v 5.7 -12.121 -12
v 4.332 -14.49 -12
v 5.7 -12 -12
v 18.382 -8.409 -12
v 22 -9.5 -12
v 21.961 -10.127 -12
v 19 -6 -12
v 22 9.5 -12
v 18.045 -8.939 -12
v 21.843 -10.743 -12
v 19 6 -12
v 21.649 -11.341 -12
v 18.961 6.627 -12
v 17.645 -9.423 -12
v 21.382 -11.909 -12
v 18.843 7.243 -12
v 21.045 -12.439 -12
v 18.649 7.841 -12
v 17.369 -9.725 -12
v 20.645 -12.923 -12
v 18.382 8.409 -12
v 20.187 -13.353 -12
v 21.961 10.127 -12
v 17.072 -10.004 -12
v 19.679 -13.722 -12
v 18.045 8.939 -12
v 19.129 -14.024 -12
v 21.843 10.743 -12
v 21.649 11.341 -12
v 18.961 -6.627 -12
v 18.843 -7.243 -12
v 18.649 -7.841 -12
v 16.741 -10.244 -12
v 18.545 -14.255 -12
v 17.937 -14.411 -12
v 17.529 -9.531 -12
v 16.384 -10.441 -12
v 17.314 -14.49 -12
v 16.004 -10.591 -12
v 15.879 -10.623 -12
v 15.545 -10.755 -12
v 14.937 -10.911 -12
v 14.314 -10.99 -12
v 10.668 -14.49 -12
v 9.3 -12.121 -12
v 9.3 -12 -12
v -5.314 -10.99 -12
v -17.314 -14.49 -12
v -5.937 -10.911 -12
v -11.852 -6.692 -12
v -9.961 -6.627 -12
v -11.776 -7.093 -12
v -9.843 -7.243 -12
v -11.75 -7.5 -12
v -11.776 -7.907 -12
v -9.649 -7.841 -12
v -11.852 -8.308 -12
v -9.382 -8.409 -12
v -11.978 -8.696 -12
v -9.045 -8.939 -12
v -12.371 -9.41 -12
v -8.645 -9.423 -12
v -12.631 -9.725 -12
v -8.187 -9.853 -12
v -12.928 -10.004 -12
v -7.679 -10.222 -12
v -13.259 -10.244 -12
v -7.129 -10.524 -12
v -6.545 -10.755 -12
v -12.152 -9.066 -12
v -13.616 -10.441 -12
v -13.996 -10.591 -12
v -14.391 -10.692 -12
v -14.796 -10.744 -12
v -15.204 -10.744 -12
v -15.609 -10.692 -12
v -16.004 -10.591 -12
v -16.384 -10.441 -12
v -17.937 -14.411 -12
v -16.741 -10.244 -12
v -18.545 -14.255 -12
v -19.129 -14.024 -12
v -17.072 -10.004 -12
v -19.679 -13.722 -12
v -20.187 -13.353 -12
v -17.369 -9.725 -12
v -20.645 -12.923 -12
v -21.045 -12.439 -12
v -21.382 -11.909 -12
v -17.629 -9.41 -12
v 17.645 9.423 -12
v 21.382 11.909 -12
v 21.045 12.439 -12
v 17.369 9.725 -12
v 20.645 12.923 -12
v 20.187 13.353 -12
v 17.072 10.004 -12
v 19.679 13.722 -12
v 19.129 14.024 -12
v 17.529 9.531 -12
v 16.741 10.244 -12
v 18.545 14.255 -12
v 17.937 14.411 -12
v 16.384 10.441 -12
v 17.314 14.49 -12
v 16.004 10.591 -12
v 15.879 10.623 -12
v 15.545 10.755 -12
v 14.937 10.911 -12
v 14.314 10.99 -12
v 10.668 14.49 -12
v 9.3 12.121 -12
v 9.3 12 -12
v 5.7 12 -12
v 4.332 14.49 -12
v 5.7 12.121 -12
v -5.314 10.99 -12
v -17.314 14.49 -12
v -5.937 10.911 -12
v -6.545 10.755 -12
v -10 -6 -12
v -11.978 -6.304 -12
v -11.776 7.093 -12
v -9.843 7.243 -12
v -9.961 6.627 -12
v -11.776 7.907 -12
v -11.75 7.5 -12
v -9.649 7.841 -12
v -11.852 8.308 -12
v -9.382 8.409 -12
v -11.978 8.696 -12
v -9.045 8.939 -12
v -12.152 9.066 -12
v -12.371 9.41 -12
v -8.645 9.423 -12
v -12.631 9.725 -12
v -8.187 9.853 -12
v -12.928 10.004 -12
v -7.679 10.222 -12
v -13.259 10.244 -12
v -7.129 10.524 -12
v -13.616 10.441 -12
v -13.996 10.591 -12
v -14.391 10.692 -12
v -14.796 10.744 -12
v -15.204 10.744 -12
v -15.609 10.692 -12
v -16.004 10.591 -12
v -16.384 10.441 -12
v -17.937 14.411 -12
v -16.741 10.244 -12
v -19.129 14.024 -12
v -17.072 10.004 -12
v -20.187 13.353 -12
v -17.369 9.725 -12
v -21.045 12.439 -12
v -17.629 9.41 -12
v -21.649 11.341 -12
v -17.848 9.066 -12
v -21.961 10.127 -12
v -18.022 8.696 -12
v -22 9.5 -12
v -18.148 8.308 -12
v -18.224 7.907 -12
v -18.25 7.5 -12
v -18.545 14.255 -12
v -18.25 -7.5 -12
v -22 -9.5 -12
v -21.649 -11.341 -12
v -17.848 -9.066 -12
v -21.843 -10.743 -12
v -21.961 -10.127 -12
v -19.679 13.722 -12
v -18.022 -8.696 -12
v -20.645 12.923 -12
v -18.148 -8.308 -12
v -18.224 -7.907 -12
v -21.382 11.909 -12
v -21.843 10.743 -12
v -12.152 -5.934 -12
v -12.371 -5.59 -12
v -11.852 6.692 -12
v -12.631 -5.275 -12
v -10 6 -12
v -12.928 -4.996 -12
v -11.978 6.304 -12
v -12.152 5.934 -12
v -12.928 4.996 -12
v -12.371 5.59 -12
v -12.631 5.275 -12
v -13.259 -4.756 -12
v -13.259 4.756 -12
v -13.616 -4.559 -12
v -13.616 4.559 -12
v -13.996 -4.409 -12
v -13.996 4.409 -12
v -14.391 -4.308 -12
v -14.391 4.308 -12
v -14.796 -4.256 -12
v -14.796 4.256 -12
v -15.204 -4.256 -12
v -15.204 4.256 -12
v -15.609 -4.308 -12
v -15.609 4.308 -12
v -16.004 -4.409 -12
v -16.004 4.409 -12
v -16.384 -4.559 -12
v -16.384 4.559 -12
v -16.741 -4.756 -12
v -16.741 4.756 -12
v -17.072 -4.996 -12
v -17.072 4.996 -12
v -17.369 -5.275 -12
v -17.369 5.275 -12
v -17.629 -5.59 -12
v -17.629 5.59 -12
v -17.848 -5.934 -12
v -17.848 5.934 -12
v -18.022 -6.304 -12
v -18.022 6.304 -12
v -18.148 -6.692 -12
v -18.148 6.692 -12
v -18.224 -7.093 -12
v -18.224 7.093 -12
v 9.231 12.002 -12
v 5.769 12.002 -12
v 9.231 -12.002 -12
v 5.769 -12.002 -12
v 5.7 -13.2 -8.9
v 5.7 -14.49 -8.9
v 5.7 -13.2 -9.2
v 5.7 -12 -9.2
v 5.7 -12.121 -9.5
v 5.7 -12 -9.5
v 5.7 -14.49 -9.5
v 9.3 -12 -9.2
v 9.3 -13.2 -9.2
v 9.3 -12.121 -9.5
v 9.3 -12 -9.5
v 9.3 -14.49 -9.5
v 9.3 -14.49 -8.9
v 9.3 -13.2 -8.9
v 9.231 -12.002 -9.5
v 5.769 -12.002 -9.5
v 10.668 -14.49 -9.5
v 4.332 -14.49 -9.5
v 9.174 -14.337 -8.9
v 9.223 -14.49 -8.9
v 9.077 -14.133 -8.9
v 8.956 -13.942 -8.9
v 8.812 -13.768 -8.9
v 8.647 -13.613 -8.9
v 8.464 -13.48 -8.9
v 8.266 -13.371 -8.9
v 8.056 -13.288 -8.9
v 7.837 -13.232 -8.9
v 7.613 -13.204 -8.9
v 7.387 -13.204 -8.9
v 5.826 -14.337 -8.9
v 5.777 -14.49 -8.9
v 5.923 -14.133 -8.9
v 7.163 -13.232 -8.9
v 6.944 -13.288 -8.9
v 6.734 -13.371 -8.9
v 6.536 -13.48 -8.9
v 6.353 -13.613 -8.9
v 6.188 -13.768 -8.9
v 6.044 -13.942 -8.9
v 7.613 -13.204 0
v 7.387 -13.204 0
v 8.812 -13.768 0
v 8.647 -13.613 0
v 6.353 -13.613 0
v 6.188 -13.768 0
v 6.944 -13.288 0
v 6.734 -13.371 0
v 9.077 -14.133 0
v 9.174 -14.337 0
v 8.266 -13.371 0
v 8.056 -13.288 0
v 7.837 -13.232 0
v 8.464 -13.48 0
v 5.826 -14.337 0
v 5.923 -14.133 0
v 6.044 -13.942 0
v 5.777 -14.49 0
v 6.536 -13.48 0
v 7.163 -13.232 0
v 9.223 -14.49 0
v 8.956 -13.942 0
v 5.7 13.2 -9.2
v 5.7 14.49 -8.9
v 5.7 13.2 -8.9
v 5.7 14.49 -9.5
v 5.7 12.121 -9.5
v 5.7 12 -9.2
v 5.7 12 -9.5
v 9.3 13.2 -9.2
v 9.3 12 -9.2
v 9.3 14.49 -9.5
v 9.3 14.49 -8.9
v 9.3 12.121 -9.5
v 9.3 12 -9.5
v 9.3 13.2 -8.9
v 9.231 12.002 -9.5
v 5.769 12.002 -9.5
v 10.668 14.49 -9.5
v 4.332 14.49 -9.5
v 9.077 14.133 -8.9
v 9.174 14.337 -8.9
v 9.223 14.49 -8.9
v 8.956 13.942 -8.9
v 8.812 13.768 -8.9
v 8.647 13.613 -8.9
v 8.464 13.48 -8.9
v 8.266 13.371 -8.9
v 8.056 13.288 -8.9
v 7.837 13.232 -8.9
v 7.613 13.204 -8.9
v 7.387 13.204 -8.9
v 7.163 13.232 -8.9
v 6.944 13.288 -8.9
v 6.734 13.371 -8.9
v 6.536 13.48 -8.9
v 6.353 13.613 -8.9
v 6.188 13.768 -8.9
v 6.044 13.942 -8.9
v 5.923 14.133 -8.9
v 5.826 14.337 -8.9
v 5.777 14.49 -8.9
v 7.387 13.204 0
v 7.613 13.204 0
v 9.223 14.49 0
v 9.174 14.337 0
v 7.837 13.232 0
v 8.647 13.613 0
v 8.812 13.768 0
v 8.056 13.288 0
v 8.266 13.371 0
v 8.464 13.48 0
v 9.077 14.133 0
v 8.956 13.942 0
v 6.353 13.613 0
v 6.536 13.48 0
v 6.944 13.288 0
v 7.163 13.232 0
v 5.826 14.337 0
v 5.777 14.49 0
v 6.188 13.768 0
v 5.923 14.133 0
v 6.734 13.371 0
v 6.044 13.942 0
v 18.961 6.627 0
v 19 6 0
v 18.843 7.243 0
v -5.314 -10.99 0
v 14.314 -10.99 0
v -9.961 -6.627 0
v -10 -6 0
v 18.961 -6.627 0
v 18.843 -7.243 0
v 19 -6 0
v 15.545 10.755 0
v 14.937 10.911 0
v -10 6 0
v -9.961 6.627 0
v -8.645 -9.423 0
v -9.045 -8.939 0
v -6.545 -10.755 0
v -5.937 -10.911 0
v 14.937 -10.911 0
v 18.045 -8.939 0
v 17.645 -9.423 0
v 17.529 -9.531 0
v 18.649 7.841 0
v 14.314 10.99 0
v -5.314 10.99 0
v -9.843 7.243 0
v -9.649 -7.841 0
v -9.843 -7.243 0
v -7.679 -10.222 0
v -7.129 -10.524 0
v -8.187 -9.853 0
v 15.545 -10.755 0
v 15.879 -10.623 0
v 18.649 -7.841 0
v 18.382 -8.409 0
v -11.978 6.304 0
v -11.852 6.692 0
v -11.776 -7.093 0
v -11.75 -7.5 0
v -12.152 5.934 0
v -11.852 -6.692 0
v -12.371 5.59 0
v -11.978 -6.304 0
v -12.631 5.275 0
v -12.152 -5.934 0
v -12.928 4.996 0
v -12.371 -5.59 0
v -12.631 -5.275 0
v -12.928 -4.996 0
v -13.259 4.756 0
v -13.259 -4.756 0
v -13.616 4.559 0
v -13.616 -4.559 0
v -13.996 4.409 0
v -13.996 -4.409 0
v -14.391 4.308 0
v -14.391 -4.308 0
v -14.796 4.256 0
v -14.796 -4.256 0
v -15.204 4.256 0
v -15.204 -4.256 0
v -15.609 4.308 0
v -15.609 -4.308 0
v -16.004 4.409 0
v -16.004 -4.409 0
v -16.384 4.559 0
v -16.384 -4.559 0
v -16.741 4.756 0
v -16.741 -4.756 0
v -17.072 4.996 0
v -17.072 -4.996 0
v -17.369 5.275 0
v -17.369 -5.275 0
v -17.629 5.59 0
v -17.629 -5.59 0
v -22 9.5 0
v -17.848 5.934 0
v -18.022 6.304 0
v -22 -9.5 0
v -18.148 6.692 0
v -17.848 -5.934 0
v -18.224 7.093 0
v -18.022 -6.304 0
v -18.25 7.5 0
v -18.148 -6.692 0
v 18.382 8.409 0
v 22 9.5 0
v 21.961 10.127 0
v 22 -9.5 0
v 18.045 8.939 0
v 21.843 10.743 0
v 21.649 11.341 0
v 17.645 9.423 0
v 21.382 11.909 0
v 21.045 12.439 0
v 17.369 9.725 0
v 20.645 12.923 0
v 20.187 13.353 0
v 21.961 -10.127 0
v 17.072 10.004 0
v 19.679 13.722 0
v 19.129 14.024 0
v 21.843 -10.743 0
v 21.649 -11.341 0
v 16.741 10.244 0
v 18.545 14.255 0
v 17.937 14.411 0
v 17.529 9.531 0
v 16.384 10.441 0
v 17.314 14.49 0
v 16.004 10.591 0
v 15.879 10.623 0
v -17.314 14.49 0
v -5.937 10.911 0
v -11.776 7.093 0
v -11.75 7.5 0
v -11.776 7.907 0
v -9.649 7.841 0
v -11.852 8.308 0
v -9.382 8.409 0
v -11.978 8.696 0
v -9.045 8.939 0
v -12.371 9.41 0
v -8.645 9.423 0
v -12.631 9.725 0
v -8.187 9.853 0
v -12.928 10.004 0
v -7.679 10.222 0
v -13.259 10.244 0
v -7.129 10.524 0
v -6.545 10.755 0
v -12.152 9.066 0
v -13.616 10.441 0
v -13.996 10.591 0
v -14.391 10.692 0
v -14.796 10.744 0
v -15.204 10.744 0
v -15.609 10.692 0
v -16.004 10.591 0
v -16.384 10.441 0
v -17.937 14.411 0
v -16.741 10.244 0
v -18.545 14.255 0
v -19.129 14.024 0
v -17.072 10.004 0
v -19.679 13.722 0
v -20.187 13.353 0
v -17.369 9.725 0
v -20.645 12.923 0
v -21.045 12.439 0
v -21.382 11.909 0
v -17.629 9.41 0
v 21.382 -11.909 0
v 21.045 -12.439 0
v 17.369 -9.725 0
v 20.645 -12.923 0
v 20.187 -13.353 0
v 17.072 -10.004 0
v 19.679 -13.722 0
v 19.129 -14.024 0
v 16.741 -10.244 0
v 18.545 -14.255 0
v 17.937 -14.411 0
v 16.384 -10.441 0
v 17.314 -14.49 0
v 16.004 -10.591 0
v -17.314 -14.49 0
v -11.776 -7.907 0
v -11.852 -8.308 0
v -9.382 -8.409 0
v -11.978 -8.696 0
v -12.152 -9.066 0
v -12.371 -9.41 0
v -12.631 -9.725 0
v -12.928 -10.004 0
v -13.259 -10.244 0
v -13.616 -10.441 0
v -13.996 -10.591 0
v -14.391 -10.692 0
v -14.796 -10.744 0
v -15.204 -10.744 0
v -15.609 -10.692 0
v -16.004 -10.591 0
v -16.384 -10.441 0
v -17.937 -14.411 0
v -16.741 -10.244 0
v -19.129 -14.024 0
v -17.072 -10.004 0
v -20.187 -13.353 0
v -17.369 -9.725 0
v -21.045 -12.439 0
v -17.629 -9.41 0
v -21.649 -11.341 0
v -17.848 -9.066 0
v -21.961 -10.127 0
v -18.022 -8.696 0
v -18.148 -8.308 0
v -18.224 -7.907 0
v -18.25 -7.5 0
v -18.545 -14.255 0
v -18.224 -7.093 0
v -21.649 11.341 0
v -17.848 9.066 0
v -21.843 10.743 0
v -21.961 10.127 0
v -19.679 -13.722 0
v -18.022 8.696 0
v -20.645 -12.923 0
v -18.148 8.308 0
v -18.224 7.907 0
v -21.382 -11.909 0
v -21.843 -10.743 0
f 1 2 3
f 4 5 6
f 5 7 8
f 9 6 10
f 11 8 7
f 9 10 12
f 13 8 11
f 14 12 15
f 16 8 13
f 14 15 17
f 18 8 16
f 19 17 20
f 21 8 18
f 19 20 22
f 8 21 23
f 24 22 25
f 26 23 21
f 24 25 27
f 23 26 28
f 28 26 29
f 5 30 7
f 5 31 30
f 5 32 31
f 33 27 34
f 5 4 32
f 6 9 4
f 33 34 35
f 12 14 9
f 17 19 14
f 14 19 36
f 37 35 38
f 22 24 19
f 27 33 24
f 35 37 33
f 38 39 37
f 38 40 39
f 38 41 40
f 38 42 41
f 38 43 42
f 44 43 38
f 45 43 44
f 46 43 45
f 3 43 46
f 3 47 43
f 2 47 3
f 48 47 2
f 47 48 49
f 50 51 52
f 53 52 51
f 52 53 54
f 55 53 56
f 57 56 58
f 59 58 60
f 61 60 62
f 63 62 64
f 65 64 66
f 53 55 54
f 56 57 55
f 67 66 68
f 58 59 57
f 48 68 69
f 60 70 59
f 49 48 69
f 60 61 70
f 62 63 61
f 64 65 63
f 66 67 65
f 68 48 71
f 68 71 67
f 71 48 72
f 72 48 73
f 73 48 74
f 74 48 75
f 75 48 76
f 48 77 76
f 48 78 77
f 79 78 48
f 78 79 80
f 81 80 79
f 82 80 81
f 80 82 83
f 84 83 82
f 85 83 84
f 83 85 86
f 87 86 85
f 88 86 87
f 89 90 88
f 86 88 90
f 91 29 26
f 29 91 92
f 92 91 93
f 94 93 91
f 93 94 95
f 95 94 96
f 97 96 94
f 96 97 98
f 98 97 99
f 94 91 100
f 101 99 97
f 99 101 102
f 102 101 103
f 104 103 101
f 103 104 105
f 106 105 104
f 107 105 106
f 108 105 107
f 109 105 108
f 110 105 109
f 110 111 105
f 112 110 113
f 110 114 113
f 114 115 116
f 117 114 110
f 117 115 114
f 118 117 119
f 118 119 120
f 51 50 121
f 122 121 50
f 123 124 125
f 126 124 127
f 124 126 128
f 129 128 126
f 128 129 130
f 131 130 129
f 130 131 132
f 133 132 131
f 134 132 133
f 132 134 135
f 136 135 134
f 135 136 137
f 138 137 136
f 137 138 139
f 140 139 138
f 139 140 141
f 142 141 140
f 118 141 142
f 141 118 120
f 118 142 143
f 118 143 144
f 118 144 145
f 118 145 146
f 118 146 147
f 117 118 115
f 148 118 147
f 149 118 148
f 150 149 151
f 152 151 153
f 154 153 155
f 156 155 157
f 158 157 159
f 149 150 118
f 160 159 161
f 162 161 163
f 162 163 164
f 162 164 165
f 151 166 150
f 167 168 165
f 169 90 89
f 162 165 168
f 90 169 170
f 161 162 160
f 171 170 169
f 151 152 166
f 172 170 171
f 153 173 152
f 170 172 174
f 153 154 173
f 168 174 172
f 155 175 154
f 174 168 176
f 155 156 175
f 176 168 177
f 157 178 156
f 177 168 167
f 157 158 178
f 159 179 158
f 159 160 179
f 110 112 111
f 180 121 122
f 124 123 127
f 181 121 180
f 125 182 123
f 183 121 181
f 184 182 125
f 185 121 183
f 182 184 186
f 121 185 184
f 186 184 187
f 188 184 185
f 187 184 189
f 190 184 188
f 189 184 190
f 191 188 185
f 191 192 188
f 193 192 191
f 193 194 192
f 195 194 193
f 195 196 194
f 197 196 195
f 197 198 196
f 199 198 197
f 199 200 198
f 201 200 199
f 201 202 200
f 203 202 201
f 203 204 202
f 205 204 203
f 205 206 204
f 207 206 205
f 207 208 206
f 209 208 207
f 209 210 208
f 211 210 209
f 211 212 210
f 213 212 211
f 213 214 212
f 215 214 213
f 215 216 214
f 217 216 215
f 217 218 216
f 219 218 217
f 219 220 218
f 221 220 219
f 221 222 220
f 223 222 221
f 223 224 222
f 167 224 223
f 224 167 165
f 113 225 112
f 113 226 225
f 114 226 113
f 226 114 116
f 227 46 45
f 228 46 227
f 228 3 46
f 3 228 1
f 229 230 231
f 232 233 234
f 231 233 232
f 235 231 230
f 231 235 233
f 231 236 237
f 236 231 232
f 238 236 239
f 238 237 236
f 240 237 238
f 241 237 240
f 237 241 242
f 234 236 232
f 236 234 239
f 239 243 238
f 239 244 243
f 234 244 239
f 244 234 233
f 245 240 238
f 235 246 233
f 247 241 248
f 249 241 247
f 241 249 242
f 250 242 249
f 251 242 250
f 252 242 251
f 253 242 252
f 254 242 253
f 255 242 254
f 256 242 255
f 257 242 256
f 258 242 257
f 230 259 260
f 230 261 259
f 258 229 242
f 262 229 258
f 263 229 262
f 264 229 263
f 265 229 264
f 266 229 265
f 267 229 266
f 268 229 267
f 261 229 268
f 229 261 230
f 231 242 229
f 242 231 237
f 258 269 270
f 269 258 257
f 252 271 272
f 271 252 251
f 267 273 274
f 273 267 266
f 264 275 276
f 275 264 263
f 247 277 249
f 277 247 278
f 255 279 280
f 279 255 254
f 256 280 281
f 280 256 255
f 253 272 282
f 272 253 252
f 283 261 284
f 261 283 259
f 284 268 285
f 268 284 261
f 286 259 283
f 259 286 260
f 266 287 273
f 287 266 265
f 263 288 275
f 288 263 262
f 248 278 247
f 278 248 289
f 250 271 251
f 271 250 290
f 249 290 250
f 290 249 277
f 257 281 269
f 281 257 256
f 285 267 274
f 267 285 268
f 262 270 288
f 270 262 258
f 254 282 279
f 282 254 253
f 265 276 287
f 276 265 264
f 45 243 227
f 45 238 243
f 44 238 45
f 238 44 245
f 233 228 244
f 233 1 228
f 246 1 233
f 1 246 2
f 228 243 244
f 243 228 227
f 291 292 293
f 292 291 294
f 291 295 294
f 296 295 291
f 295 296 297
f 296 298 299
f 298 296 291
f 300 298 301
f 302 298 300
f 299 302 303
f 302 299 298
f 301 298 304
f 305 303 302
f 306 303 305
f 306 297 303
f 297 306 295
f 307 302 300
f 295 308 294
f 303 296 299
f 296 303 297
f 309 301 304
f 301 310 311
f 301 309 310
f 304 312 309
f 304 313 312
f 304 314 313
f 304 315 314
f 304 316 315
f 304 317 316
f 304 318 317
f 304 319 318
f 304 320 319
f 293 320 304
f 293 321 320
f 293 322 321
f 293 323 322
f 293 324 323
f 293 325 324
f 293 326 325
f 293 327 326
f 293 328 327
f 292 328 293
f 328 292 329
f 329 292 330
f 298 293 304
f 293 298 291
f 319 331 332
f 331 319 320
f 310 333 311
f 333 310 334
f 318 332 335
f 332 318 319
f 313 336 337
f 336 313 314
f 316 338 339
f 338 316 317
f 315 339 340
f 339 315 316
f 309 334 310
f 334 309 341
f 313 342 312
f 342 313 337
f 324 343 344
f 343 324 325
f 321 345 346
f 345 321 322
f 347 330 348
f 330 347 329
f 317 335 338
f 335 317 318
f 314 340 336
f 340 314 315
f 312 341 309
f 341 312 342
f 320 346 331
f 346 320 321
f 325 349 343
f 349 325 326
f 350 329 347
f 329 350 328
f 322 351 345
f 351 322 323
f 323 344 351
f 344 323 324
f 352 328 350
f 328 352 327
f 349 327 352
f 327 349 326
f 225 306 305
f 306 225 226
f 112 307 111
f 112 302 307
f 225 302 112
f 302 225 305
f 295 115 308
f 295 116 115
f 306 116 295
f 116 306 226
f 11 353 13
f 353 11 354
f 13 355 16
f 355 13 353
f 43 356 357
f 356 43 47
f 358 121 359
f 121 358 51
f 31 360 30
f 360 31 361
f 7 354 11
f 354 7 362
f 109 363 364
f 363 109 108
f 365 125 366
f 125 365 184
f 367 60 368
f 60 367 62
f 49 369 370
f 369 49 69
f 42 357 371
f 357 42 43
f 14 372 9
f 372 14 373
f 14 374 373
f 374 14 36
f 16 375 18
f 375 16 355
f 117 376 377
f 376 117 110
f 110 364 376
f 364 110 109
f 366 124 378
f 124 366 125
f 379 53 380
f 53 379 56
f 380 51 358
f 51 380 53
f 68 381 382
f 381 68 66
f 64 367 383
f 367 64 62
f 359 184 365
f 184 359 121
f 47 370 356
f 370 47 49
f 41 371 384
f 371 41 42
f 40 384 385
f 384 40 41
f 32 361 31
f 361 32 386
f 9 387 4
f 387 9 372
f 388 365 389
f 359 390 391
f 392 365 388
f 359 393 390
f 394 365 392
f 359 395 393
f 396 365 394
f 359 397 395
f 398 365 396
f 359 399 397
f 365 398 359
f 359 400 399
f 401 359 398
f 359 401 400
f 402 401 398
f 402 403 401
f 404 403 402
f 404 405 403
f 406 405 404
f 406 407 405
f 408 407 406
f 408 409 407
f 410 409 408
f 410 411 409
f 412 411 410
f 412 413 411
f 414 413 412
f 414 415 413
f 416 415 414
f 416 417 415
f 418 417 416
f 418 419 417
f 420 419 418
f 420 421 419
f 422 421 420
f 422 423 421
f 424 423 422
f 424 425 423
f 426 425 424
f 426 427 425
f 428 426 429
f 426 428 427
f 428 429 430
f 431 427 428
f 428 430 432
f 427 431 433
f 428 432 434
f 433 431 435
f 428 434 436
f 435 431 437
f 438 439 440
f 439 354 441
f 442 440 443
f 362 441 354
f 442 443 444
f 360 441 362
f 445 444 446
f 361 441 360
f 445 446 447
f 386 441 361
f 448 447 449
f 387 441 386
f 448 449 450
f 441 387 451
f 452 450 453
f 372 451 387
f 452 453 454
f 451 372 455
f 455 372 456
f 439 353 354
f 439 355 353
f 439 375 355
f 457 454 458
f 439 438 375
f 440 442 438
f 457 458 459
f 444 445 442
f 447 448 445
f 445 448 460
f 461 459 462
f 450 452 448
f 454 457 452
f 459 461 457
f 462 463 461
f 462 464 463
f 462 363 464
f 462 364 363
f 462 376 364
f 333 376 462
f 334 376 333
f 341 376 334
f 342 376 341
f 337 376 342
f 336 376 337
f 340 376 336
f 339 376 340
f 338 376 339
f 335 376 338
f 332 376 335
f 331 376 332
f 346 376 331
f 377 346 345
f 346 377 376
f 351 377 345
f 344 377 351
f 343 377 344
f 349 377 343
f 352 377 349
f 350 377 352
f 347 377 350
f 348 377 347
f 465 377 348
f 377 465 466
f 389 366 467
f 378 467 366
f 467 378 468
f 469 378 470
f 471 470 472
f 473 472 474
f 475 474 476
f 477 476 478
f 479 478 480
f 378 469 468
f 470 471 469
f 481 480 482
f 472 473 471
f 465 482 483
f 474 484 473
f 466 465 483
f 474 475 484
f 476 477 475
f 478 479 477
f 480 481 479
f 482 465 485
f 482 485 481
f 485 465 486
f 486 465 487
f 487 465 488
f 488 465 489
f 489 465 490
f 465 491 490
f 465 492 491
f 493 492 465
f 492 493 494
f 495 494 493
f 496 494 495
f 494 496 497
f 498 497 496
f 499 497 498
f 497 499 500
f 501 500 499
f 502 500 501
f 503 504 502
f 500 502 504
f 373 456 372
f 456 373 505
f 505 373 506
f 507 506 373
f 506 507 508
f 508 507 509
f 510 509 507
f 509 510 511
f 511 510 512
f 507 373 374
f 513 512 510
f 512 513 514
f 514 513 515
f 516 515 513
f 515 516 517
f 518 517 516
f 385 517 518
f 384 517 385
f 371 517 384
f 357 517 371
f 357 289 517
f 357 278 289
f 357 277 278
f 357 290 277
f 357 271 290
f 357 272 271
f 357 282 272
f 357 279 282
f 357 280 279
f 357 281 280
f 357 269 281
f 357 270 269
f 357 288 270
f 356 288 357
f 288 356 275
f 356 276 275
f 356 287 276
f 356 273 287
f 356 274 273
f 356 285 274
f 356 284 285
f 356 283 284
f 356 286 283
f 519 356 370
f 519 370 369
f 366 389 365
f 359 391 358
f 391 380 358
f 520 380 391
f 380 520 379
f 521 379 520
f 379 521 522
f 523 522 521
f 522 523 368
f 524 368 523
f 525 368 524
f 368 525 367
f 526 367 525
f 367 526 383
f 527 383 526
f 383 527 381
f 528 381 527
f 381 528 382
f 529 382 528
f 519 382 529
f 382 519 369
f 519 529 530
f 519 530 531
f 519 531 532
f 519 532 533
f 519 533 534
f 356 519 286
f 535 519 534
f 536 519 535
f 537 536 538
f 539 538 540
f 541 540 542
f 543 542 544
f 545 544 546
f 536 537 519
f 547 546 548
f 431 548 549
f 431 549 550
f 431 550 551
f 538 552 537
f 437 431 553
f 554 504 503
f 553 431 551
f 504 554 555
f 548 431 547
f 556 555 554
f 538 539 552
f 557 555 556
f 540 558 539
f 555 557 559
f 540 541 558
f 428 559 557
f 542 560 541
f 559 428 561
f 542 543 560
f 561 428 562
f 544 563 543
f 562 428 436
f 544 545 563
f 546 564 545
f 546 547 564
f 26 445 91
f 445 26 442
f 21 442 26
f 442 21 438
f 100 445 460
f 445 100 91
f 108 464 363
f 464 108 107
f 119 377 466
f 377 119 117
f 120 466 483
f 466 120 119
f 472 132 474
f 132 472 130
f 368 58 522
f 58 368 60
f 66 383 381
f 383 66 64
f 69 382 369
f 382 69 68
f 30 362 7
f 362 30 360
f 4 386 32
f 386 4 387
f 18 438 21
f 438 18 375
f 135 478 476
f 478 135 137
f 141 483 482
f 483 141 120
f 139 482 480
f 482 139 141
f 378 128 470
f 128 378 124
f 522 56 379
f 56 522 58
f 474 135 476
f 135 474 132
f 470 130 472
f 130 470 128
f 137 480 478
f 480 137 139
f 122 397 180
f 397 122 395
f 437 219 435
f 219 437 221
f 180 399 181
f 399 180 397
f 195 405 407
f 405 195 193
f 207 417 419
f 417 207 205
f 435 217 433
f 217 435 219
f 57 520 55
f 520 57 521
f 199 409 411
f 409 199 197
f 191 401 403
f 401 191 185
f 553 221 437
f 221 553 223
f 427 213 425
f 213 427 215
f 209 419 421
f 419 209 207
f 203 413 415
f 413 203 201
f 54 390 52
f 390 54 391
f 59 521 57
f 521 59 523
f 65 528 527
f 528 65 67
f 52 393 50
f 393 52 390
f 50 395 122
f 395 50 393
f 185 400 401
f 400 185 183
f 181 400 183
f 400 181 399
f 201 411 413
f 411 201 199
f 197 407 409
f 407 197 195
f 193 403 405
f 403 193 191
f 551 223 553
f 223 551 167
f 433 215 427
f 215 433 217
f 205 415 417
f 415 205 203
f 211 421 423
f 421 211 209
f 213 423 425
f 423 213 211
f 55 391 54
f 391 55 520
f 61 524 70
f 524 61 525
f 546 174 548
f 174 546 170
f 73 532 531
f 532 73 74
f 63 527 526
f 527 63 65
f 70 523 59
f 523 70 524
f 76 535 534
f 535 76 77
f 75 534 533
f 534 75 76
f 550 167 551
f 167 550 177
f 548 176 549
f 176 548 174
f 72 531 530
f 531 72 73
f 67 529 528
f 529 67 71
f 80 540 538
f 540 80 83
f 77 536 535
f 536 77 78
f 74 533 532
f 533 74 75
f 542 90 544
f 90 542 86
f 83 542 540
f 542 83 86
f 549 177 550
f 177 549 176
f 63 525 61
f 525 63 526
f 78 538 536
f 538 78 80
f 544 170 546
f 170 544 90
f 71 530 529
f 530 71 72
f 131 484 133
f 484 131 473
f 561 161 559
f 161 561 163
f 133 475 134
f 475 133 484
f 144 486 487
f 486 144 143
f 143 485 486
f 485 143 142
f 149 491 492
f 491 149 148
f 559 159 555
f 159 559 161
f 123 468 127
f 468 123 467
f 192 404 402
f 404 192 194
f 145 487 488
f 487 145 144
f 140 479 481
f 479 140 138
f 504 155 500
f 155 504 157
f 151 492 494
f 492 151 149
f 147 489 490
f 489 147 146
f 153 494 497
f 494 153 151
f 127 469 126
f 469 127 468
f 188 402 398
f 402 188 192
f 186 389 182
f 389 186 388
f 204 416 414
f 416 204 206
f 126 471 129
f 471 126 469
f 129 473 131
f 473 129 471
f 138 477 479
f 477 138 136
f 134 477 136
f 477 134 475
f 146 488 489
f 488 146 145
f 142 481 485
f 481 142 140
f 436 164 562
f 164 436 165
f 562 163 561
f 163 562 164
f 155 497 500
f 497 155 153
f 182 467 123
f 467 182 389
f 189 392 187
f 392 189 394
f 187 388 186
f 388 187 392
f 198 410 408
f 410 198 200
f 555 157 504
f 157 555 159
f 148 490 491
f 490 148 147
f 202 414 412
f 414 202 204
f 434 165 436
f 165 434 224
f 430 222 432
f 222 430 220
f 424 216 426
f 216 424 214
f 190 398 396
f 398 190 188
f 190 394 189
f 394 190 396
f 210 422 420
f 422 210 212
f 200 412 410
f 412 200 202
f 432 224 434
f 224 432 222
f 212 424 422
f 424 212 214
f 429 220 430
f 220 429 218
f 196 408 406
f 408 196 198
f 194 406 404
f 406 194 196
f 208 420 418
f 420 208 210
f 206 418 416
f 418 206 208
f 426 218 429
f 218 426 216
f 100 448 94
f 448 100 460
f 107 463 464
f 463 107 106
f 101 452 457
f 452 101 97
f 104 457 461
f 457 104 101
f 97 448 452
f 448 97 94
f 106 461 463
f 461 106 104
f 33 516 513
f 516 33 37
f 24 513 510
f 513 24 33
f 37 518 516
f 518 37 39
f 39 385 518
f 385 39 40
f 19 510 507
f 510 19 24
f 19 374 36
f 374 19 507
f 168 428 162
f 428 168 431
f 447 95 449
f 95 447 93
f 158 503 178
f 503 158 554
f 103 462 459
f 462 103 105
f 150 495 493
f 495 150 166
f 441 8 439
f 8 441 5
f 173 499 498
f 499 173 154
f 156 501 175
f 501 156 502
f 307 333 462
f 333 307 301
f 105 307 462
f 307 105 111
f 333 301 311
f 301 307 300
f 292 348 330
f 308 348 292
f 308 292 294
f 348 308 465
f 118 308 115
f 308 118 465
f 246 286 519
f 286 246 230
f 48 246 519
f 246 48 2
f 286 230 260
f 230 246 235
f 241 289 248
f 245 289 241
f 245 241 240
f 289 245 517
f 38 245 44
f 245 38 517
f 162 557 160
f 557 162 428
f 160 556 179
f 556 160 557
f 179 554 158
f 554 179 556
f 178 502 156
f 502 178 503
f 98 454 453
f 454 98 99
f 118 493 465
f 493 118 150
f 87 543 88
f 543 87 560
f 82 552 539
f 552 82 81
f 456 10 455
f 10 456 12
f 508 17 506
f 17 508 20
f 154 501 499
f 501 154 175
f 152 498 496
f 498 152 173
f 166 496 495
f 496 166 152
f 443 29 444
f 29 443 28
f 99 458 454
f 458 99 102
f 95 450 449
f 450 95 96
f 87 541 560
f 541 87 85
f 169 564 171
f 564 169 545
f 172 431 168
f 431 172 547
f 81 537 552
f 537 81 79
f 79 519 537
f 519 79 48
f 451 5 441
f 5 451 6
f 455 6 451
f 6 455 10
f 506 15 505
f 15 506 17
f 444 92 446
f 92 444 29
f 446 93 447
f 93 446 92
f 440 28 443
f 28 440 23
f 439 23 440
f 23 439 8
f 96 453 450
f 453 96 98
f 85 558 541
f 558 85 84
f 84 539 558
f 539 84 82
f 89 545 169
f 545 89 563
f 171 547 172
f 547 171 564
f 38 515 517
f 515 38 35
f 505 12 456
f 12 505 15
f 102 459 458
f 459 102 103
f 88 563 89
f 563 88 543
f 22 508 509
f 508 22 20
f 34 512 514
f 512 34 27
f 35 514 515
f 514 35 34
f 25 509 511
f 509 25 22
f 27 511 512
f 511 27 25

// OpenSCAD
$fn = 50;


difference() {
	union() {
		*color(alpha = 1.0000000000, c = "gray") {
			translate(v = [0, 14, -12]) {
				linear_extrude(height = 2) {
					text(font = "Arial:style=Bold", halign = "center", size = 4.5000000000, text = "COMMENT description oobb_plate_shape_positive_type_12_depth_0_0_-12_pos_spacer_long_extra_12_thickness_3_width_2_height_0_0_-12_pos_plate", valign = "center");
				}
			}
		}
		translate(v = [0, 0, -12]) {
			hull() {
				translate(v = [-17.0000000000, 9.5000000000, 0]) {
					cylinder(h = 12, r = 5);
				}
				translate(v = [17.0000000000, 9.5000000000, 0]) {
					cylinder(h = 12, r = 5);
				}
				translate(v = [-17.0000000000, -9.5000000000, 0]) {
					cylinder(h = 12, r = 5);
				}
				translate(v = [17.0000000000, -9.5000000000, 0]) {
					cylinder(h = 12, r = 5);
				}
			}
		}
		*color(alpha = 1.0000000000, c = "gray") {
			translate(v = [0, 14, -12]) {
				linear_extrude(height = 2) {
					text(font = "Arial:style=Bold", halign = "center", size = 4.5000000000, text = "COMMENT description oobb_holes_shape_p_type_0_0_-12_pos_spacer_long_extra_12_thickness_3_width_2_height_0_0_-12_pos_plate_'left'_'right'_'top'_hole_sides_'left'_'right'_'top'_holes_true_both_holes", valign = "center");
				}
			}
		}
		*color(alpha = 1.0000000000, c = "gray") {
			translate(v = [0, 14, -3]) {
				rotate(a = [0, 0, 180]) {
					linear_extrude(height = 2) {
						text(font = "Arial:style=Bold", halign = "center", size = 4.5000000000, text = "COMMENT description oobb_wire_spacer_long_shape_0_0_-3_pos_spacer_long_extra_12_thickness_3_width_2_height_0_0_-12_pos_plate_0_0_180_rot", valign = "center");
					}
				}
			}
		}
	}
	union() {
		translate(v = [7.5000000000, -15, -12]) {
			rotate(a = [0, 0, 0]) {
				difference() {
					union() {
						#translate(v = [-1.8000000000, -3.0000000000, -0.3000000000]) {
							cube(size = [3.6000000000, 6.0000000000, 0.3000000000]);
						}
						#translate(v = [-1.8000000000, -1.8000000000, -0.6000000000]) {
							cube(size = [3.6000000000, 3.6000000000, 0.3000000000]);
						}
						#translate(v = [-1.8000000000, -3.0000000000, 2.5000000000]) {
							cube(size = [3.6000000000, 6.0000000000, 0.3000000000]);
						}
						#translate(v = [-1.8000000000, -1.8000000000, 2.8000000000]) {
							cube(size = [3.6000000000, 3.6000000000, 0.3000000000]);
						}
						#translate(v = [0, 0, -50.0000000000]) {
							cylinder(h = 100, r = 1.8000000000);
						}
						#linear_extrude(height = 2.5000000000) {
							polygon(points = [[3.4620000000, 0.0000000000], [1.7310000000, 2.9981799479], [-1.7310000000, 2.9981799479], [-3.4620000000, 0.0000000000], [-1.7310000000, -2.9981799479], [1.7310000000, -2.9981799479]]);
						}
						#translate(v = [-1.8000000000, -3.0000000000, -0.3000000000]) {
							cube(size = [3.6000000000, 6.0000000000, 0.3000000000]);
						}
						#translate(v = [-1.8000000000, -1.8000000000, -0.6000000000]) {
							cube(size = [3.6000000000, 3.6000000000, 0.3000000000]);
						}
						#translate(v = [-1.8000000000, -3.0000000000, 2.5000000000]) {
							cube(size = [3.6000000000, 6.0000000000, 0.3000000000]);
						}
						#translate(v = [-1.8000000000, -1.8000000000, 2.8000000000]) {
							cube(size = [3.6000000000, 3.6000000000, 0.3000000000]);
						}
						#translate(v = [0, 0, -50.0000000000]) {
							cylinder(h = 100, r = 1.8000000000);
						}
						#translate(v = [-1.8000000000, -3.0000000000, -0.3000000000]) {
							cube(size = [3.6000000000, 6.0000000000, 0.3000000000]);
						}
						#translate(v = [-1.8000000000, -1.8000000000, -0.6000000000]) {
							cube(size = [3.6000000000, 3.6000000000, 0.3000000000]);
						}
						#translate(v = [-1.8000000000, -3.0000000000, 2.5000000000]) {
							cube(size = [3.6000000000, 6.0000000000, 0.3000000000]);
						}
						#translate(v = [-1.8000000000, -1.8000000000, 2.8000000000]) {
							cube(size = [3.6000000000, 3.6000000000, 0.3000000000]);
						}
						#translate(v = [0, 0, -50.0000000000]) {
							cylinder(h = 100, r = 1.8000000000);
						}
					}
					union();
				}
			}
		}
		translate(v = [7.5000000000, 15, -12]) {
			rotate(a = [0, 0, 0]) {
				difference() {
					union() {
						#translate(v = [-1.8000000000, -3.0000000000, -0.3000000000]) {
							cube(size = [3.6000000000, 6.0000000000, 0.3000000000]);
						}
						#translate(v = [-1.8000000000, -1.8000000000, -0.6000000000]) {
							cube(size = [3.6000000000, 3.6000000000, 0.3000000000]);
						}
						#translate(v = [-1.8000000000, -3.0000000000, 2.5000000000]) {
							cube(size = [3.6000000000, 6.0000000000, 0.3000000000]);
						}
						#translate(v = [-1.8000000000, -1.8000000000, 2.8000000000]) {
							cube(size = [3.6000000000, 3.6000000000, 0.3000000000]);
						}
						#translate(v = [0, 0, -50.0000000000]) {
							cylinder(h = 100, r = 1.8000000000);
						}
						#linear_extrude(height = 2.5000000000) {
							polygon(points = [[3.4620000000, 0.0000000000], [1.7310000000, 2.9981799479], [-1.7310000000, 2.9981799479], [-3.4620000000, 0.0000000000], [-1.7310000000, -2.9981799479], [1.7310000000, -2.9981799479]]);
						}
						#translate(v = [-1.8000000000, -3.0000000000, -0.3000000000]) {
							cube(size = [3.6000000000, 6.0000000000, 0.3000000000]);
						}
						#translate(v = [-1.8000000000, -1.8000000000, -0.6000000000]) {
							cube(size = [3.6000000000, 3.6000000000, 0.3000000000]);
						}
						#translate(v = [-1.8000000000, -3.0000000000, 2.5000000000]) {
							cube(size = [3.6000000000, 6.0000000000, 0.3000000000]);
						}
						#translate(v = [-1.8000000000, -1.8000000000, 2.8000000000]) {
							cube(size = [3.6000000000, 3.6000000000, 0.3000000000]);
						}
						#translate(v = [0, 0, -50.0000000000]) {
							cylinder(h = 100, r = 1.8000000000);
						}
						#translate(v = [-1.8000000000, -3.0000000000, -0.3000000000]) {
							cube(size = [3.6000000000, 6.0000000000, 0.3000000000]);
						}
						#translate(v = [-1.8000000000, -1.8000000000, -0.6000000000]) {
							cube(size = [3.6000000000, 3.6000000000, 0.3000000000]);
						}
						#translate(v = [-1.8000000000, -3.0000000000, 2.5000000000]) {
							cube(size = [3.6000000000, 6.0000000000, 0.3000000000]);
						}
						#translate(v = [-1.8000000000, -1.8000000000, 2.8000000000]) {
							cube(size = [3.6000000000, 3.6000000000, 0.3000000000]);
						}
						#translate(v = [0, 0, -50.0000000000]) {
							cylinder(h = 100, r = 1.8000000000);
						}
					}
					union();
				}
			}
		}
		translate(v = [0, 0, -3]) {
			rotate(a = [0, 0, 180]) {
				difference() {
					union() {
						translate(v = [-4.5000000000, 0, -9]) {
							hull() {
								translate(v = [-9.5000000000, 6.0000000000, 0]) {
									cylinder(h = 12, r = 5);
								}
								translate(v = [9.5000000000, 6.0000000000, 0]) {
									cylinder(h = 12, r = 5);
								}
								translate(v = [-9.5000000000, -6.0000000000, 0]) {
									cylinder(h = 12, r = 5);
								}
								translate(v = [9.5000000000, -6.0000000000, 0]) {
									cylinder(h = 12, r = 5);
								}
							}
						}
					}
					union();
				}
			}
		}
		translate(v = [-15.0000000000, -7.5000000000, -50.0000000000]) {
			cylinder(h = 100, r = 3.2500000000);
		}
		translate(v = [-15.0000000000, 7.5000000000, -50.0000000000]) {
			cylinder(h = 100, r = 3.2500000000);
		}
		translate(v = [-15.0000000000, 7.5000000000, -50.0000000000]) {
			cylinder(h = 100, r = 3.2500000000);
		}
		translate(v = [0.0000000000, 7.5000000000, -50.0000000000]) {
			cylinder(h = 100, r = 3.2500000000);
		}
		translate(v = [15.0000000000, 7.5000000000, -50.0000000000]) {
			cylinder(h = 100, r = 3.2500000000);
		}
		translate(v = [-15.0000000000, -7.5000000000, -50.0000000000]) {
			cylinder(h = 100, r = 3.2500000000);
		}
		translate(v = [0.0000000000, -7.5000000000, -50.0000000000]) {
			cylinder(h = 100, r = 3.2500000000);
		}
		translate(v = [15.0000000000, -7.5000000000, -50.0000000000]) {
			cylinder(h = 100, r = 3.2500000000);
		}
		*color(alpha = 1.0000000000, c = "gray") {
			translate(v = [7.5000000000, -1, -12]) {
				linear_extrude(height = 2) {
					text(font = "Arial:style=Bold", halign = "center", size = 4.5000000000, text = "COMMENT description oobb_nut_shape_negative_type_m3_radius_name_7.5_-15_-12_pos_12_thickness_3_width_2_height_0_0_-12_pos_plate_bottom_zz_true_overhang_0_0_0_rot_false_nut_true_hole", valign = "center");
				}
			}
		}
		*color(alpha = 1.0000000000, c = "gray") {
			translate(v = [7.5000000000, 29, -12]) {
				linear_extrude(height = 2) {
					text(font = "Arial:style=Bold", halign = "center", size = 4.5000000000, text = "COMMENT description oobb_nut_shape_negative_type_m3_radius_name_7.5_15_-12_pos_12_thickness_3_width_2_height_0_0_-12_pos_plate_bottom_zz_true_overhang_0_0_0_rot_false_nut_true_hole", valign = "center");
				}
			}
		}
	}
}
